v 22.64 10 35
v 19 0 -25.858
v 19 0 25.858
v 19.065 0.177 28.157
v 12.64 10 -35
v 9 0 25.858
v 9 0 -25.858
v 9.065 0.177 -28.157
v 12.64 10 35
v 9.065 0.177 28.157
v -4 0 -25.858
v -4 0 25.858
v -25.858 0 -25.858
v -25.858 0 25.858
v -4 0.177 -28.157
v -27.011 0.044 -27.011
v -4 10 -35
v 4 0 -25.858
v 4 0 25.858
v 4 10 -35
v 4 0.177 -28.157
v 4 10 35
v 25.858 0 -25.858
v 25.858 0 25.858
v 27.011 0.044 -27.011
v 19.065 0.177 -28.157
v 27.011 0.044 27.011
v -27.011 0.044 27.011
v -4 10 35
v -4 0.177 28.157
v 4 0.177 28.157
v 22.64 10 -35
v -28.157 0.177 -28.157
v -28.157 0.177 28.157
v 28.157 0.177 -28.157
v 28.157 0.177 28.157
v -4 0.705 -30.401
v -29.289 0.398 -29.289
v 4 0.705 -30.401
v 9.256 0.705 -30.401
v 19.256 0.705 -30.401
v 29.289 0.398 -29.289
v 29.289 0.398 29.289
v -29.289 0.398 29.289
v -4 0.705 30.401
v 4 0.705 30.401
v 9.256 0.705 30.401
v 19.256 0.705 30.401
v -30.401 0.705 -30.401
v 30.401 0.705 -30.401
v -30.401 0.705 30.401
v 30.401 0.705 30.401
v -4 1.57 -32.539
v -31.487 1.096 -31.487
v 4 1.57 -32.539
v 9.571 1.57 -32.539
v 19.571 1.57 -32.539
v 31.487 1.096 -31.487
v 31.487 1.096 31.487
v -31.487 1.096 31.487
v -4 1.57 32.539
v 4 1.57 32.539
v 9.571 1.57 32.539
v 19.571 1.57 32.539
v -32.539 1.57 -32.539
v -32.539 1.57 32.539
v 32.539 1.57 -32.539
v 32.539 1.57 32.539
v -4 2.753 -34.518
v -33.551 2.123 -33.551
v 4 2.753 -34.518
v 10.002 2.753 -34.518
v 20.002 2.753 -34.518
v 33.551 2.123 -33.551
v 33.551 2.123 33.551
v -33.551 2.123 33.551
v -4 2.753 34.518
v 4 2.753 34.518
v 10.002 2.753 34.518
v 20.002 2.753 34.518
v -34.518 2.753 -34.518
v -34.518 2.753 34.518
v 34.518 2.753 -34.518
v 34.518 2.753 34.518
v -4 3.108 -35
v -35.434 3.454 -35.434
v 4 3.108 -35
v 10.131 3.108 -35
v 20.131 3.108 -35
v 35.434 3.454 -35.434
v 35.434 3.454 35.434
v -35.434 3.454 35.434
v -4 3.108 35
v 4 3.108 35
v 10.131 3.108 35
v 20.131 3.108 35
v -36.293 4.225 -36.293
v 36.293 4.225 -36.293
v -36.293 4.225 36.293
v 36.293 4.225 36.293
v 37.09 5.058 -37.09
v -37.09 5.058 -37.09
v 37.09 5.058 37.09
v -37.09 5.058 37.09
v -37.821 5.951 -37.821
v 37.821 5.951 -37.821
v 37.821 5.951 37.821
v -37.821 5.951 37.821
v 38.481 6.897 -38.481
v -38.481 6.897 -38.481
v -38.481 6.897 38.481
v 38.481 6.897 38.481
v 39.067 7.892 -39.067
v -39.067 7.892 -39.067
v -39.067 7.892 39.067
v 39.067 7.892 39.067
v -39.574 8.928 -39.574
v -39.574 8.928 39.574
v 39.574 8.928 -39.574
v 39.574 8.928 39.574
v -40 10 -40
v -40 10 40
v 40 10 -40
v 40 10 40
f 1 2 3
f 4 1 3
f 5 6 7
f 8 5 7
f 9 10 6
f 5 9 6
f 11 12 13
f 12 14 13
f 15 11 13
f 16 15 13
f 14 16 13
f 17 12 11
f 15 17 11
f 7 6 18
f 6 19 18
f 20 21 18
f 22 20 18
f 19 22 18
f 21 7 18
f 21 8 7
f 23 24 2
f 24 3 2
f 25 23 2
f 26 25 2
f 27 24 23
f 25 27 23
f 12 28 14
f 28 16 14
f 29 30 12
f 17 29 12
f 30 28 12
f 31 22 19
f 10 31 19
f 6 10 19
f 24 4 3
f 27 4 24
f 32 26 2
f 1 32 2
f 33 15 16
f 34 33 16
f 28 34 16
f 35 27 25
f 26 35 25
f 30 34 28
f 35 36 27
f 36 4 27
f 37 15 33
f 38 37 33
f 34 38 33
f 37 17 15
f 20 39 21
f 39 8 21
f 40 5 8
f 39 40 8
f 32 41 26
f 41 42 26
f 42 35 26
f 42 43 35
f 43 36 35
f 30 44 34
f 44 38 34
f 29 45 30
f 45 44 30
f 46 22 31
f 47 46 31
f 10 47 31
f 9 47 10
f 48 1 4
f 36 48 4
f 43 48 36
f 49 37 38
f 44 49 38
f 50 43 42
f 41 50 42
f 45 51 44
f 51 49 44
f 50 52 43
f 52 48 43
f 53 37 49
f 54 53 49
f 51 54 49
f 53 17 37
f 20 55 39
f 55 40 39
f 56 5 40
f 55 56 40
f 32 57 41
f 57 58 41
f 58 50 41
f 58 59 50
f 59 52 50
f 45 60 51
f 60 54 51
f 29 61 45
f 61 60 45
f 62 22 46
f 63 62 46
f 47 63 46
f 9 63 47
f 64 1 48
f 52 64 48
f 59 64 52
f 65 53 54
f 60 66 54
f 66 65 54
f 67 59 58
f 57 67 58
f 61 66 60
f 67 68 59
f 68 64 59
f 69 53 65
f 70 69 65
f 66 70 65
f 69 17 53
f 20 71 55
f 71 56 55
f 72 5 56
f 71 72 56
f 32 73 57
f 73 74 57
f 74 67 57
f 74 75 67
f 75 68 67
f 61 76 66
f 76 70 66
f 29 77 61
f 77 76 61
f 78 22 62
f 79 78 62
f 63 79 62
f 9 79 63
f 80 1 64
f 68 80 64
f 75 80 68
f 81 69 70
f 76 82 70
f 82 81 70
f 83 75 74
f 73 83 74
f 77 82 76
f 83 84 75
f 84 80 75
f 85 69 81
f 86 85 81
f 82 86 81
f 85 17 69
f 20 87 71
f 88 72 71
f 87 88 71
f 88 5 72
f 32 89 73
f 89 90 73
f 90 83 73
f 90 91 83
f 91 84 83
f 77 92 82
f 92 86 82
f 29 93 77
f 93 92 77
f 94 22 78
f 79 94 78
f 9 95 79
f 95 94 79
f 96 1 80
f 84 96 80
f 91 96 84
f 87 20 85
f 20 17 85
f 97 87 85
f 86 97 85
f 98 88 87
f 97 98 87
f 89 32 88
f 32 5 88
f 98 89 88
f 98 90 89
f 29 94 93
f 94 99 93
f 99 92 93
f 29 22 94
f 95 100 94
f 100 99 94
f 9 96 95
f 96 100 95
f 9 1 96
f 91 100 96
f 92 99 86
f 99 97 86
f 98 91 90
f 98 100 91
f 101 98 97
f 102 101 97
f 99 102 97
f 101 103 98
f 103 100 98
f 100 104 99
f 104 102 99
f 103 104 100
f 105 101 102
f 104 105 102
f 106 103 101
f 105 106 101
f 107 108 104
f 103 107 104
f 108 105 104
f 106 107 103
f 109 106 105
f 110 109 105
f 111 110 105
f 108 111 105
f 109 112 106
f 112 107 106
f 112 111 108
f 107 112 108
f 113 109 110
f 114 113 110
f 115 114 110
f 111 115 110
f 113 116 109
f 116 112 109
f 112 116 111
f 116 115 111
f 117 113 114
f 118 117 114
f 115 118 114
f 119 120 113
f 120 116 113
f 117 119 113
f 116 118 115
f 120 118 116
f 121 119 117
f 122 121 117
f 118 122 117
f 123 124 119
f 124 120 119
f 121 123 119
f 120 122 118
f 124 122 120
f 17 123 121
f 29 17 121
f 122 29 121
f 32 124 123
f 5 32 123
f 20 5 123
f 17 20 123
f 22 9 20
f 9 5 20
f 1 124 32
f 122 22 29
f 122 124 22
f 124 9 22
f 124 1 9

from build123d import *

# Parameters (mm, degrees)
SKETCH1_W           = 80
SKETCH1_H           = 80
BOSS_EXTRUDE1_DEPTH = 10
SKETCH2_W           = 8
SKETCH2_H           = 70
CUT_EXTRUDE1_DEPTH  = 20
CUT_EXTRUDE17_DEPTH = 75
BOSS_EXTRUDE2_DEPTH = 5
FILLET1_R           = 15


with BuildPart() as part:
    # Sketch1 → Boss-Extrude1 (new body)
    with BuildSketch(Plane(origin=(0, 0, 0), x_dir=(1, 0, 0), z_dir=(0, 1, 0))):
        Rectangle(SKETCH1_W, SKETCH1_H)
    extrude(amount=BOSS_EXTRUDE1_DEPTH)

    # Sketch2 → Cut-Extrude1 (cut)
    with BuildSketch(Plane.XZ):
        Rectangle(SKETCH2_W, SKETCH2_H)
    extrude(amount=-CUT_EXTRUDE1_DEPTH, mode=Mode.SUBTRACT)

    # Sketch8 → Cut-Extrude17 (cut)
    with BuildSketch(Plane(origin=(0, 0, -40), x_dir=(-1, 0, 0), z_dir=(0, 0, -1))):
        Polygon((-19, 0), (-22.639702343, 10), (-12.639702343, 10), (-9, 0), align=None)
    extrude(amount=-CUT_EXTRUDE17_DEPTH, mode=Mode.SUBTRACT)

    # Sketch10 → Boss-Extrude2 (add)
    with BuildSketch(Plane(origin=(0, 0, -40), x_dir=(-1, 0, 0), z_dir=(0, 0, -1))):
        Polygon((-9, 0), (-12.639702343, 10), (-22.639702343, 10), (-19, 0), align=None)
    extrude(amount=-BOSS_EXTRUDE2_DEPTH)

    # Fillet1
    # the kernel refuses this fillet: 15 mm, written as the material it takes off along each edge
    with BuildSketch(Plane(origin=(-40, 0, 75.355339059), x_dir=(1, 0, 0), z_dir=(0, 0, -1)), Plane(origin=(40, 0, -75.355339059), x_dir=(-1, 0, 0), z_dir=(0, 0, 1))) as fillet1_piece_1:
        with BuildLine():
            CenterArc((14.142135624, -15), FILLET1_R, 90, 70.528779366)
            Line((0, -10), (-0.282842712, -9.9))
            ThreePointArc((-0.282842712, -9.9), (-0.3, -5), (-0.3, 0))
            Line((-0.3, 0), (0, 0.3))
            Line((0, 0.3), (14.142135624, 0.3))
            Line((14.142135624, 0.3), (14.142135624, 0))
        make_face()
    extrude(amount=150.710678119, mode=Mode.SUBTRACT)
    with BuildSketch(Plane(origin=(-75.355339059, 0, -40), x_dir=(0, 1, 0), z_dir=(1, 0, 0)), Plane(origin=(75.355339059, 0, 40), x_dir=(0, 1, 0), z_dir=(-1, 0, 0))) as fillet1_piece_2:
        with BuildLine():
            CenterArc((15, 14.142135624), FILLET1_R, 180, 70.528779366)
            Line((0, 14.142135624), (-0.3, 14.142135624))
            Line((-0.3, 14.142135624), (-0.3, 0))
            Line((-0.3, 0), (0, -0.3))
            ThreePointArc((0, -0.3), (5, -0.3), (9.9, -0.282842712))
            Line((9.9, -0.282842712), (10, 0))
        make_face()
    extrude(amount=150.710678119, mode=Mode.SUBTRACT)


solid = part.part
